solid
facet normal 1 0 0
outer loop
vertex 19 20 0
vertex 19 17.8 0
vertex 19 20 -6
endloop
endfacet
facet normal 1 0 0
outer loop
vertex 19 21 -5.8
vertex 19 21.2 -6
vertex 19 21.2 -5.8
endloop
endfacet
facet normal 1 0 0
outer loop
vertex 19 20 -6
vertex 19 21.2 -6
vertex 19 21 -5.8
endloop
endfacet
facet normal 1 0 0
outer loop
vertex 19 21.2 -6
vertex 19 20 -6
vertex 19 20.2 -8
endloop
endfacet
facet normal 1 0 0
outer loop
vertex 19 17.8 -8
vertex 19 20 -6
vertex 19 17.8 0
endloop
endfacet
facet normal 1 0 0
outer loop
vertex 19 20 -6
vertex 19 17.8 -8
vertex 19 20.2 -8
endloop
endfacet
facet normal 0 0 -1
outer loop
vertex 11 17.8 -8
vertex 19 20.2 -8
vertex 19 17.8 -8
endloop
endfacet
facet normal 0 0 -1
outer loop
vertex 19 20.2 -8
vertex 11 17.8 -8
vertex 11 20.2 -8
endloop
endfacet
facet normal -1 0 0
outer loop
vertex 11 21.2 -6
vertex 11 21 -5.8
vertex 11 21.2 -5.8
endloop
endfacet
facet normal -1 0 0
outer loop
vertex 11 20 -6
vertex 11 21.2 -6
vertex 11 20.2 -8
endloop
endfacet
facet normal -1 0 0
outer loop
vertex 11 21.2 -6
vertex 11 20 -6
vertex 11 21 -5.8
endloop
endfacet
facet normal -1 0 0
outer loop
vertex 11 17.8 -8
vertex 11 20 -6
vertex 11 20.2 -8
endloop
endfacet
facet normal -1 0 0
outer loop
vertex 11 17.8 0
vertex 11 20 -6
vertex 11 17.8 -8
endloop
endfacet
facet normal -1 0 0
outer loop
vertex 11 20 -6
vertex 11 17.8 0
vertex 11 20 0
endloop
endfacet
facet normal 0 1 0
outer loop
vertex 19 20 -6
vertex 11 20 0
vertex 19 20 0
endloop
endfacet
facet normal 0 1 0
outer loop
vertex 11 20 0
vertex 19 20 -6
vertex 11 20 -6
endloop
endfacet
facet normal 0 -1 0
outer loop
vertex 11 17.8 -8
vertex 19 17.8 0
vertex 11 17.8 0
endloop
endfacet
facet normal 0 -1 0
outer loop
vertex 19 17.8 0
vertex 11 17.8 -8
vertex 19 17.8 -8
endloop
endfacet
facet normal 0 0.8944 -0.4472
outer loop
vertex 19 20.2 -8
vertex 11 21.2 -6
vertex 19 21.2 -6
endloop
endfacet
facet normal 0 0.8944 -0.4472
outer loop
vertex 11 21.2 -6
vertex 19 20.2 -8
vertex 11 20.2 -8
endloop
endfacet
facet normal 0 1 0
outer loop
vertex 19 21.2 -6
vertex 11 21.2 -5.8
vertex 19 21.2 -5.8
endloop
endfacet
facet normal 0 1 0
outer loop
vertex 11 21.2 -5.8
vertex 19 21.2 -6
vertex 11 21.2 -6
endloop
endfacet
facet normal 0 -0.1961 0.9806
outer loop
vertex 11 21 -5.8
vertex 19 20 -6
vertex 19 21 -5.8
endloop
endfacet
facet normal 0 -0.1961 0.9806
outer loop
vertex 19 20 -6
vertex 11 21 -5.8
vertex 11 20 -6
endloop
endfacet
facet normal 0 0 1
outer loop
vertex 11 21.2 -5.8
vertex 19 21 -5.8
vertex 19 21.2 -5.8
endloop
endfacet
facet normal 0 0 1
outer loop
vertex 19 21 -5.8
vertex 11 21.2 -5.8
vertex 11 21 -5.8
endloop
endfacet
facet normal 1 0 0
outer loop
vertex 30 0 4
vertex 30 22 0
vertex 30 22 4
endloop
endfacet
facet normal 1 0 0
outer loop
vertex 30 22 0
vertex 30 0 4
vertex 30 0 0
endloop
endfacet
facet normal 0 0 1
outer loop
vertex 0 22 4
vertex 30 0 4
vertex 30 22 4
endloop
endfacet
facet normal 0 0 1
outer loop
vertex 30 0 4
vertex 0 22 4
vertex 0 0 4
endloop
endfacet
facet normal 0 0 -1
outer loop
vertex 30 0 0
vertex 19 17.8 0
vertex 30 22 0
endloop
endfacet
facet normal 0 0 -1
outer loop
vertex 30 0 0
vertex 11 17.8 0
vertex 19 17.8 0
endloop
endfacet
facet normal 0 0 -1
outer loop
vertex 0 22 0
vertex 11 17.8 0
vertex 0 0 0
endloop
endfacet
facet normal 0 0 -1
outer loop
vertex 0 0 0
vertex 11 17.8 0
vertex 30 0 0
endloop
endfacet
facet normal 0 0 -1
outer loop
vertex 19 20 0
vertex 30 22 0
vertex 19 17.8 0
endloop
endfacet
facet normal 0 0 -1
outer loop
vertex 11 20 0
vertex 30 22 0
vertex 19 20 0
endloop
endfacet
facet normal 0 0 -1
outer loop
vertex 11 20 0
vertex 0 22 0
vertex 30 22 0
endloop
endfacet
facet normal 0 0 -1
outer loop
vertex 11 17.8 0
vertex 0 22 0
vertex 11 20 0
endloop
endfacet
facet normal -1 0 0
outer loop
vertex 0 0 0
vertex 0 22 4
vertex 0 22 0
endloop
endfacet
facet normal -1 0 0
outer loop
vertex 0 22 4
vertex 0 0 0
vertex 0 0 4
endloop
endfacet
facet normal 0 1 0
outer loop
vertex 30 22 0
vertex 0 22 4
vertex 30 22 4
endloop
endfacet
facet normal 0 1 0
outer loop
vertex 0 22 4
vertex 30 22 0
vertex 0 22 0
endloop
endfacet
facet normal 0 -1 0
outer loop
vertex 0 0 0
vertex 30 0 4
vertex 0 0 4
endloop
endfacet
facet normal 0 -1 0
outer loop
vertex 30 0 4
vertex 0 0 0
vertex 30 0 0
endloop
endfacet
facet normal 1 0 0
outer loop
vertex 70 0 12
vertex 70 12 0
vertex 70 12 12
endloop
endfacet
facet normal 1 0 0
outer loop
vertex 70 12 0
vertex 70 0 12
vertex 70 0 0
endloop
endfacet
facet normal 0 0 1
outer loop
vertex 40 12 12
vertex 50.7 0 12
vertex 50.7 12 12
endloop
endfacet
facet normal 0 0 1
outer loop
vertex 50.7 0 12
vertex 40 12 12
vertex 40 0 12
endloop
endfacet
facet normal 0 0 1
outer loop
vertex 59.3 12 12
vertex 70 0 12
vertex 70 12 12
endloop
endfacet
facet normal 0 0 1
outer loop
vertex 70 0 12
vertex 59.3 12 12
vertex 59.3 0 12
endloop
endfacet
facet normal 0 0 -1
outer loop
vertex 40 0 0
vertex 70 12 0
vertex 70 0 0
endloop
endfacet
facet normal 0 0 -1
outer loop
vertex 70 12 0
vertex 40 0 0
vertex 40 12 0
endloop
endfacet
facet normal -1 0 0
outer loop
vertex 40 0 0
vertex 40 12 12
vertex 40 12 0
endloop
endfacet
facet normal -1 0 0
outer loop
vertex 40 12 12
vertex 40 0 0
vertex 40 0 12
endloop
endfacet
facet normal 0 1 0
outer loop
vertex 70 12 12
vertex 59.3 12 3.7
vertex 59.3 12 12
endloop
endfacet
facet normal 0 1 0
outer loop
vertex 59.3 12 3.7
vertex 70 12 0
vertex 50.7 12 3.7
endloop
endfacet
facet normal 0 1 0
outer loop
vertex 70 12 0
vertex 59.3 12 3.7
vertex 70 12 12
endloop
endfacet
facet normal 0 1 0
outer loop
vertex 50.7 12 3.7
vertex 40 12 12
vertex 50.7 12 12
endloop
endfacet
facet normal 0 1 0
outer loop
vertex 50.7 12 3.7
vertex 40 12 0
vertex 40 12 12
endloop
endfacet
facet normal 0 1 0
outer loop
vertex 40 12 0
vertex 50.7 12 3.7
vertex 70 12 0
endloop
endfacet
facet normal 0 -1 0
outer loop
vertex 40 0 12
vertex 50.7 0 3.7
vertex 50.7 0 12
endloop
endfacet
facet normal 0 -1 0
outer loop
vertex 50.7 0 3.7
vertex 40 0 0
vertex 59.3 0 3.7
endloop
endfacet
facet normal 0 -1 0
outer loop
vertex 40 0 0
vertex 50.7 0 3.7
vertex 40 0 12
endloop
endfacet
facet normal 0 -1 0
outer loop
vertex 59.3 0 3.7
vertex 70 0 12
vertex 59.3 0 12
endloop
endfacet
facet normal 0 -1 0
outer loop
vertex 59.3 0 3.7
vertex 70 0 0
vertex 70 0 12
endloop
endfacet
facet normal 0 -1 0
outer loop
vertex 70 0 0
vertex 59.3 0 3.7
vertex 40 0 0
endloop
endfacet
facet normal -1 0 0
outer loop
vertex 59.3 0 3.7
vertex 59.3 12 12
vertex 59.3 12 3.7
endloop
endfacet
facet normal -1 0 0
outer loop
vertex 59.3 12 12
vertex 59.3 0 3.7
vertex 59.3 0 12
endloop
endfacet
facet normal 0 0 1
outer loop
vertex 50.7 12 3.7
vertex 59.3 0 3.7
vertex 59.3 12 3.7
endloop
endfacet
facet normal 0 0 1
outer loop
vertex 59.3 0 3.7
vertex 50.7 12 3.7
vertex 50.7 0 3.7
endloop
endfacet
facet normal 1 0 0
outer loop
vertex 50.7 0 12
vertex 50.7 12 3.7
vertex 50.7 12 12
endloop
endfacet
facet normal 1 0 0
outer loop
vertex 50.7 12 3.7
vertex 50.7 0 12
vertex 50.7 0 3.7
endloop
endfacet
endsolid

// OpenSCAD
// file: lib/snap-interface.scad
// Hidden panel snap interface v0.1.
// Print and test the coupon before committing full panels to a printer.

snap_arm_width = 8;
snap_arm_thickness = 2.2;
snap_arm_drop = 8;
snap_barb_depth = 1.0;
snap_barb_height = 2.0;
snap_slot_clearance = 0.30;

module snap_hook() {
    // Panel underside is Z=0; hook extends downward.
    union() {
        translate([-snap_arm_width / 2, 0, -snap_arm_drop])
            cube([snap_arm_width, snap_arm_thickness, snap_arm_drop + 0.4]);
        hull() {
            translate([-snap_arm_width / 2, snap_arm_thickness, -snap_arm_drop])
                cube([snap_arm_width, 0.2, snap_barb_height]);
            translate([-snap_arm_width / 2, snap_arm_thickness + snap_barb_depth, -snap_arm_drop + snap_barb_height])
                cube([snap_arm_width, 0.2, 0.2]);
        }
    }
}

module snap_receiver_slot(depth = 8) {
    translate([
        -snap_arm_width / 2 - snap_slot_clearance,
        -0.1,
        -snap_arm_drop - snap_slot_clearance
    ])
        cube([
            snap_arm_width + 2 * snap_slot_clearance,
            depth + 0.2,
            snap_arm_drop + 2 * snap_slot_clearance
        ]);
}
// main file
// Two-piece snap calibration coupon.
include <lib/snap-interface.scad>

part = "set"; // hook | receiver | set

module hook_coupon() {
    cube([30, 22, 4]);
    translate([15, 20 - snap_arm_thickness, 0]) snap_hook();
}

module receiver_coupon() {
    difference() {
        cube([30, 12, 12]);
        translate([15, 0, 12]) snap_receiver_slot(12);
    }
}

if (part == "hook") hook_coupon();
else if (part == "receiver") receiver_coupon();
else {
    hook_coupon();
    translate([40, 0, 0]) receiver_coupon();
}

echo("snap_arm_mm", [snap_arm_width, snap_arm_thickness, snap_arm_drop]);
echo("barb_depth_mm", snap_barb_depth);
echo("slot_clearance_per_side_mm", snap_slot_clearance);
